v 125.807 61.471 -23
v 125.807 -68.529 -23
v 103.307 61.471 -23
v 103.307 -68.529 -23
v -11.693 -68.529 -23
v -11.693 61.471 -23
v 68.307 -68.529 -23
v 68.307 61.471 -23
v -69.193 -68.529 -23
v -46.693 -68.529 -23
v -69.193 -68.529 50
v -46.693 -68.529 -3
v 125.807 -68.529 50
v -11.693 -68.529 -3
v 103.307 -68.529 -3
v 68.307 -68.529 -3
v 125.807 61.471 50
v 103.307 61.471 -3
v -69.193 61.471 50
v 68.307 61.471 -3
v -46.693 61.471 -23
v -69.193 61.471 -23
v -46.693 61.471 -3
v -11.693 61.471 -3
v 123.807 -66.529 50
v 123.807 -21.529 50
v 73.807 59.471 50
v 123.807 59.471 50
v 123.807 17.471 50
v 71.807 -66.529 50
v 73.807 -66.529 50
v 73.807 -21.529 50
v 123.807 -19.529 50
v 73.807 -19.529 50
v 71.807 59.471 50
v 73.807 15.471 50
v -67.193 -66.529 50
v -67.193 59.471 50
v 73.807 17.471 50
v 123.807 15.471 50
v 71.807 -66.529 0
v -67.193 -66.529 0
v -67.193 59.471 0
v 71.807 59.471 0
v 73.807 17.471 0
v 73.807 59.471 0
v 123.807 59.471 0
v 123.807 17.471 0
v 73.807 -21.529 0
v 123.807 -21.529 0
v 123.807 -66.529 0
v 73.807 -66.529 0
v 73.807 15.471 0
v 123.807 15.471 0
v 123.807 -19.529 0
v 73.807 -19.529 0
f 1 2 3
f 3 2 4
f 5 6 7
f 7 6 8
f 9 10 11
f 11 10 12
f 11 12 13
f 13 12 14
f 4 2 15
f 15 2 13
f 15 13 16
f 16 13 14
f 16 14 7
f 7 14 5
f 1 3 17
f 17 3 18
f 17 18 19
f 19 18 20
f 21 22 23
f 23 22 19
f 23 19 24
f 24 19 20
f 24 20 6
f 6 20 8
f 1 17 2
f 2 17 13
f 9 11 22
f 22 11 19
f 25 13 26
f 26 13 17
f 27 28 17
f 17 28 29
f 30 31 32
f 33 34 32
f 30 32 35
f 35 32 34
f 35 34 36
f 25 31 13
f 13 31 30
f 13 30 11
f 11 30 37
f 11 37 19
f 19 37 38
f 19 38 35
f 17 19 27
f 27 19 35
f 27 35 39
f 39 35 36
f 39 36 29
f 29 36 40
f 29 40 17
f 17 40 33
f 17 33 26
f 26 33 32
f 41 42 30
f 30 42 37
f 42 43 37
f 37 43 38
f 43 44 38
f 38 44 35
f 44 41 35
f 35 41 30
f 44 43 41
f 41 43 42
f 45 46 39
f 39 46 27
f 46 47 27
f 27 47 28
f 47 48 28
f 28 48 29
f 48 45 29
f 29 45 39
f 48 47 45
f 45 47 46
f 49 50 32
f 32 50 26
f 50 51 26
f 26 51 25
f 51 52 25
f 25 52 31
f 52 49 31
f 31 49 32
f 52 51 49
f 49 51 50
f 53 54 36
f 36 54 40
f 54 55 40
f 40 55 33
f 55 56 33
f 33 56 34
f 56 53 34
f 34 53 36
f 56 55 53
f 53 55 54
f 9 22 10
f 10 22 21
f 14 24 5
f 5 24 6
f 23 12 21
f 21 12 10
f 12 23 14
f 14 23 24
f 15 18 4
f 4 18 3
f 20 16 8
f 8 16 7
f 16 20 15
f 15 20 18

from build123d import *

# Parameters (mm, degrees)
SKIZZE1_W                       = 195
SKIZZE1_H                       = 130
AUFSATZ_LINEAR_AUSTRAGEN1_DEPTH = 53
SKIZZE2_W                       = 139
SKIZZE2_H                       = 126
SCHNITT_LINEAR_AUSTRAGEN1_DEPTH = 50
SKIZZE3_W                       = 50
SKIZZE3_H                       = 42
SCHNITT_LINEAR_AUSTRAGEN2_DEPTH = 50
SKIZZE4_W                       = 50
SKIZZE4_H                       = 45
SCHNITT_LINEAR_AUSTRAGEN3_DEPTH = 50
SKIZZE5_W                       = 50
SKIZZE5_H                       = 35
SCHNITT_LINEAR_AUSTRAGEN4_DEPTH = 50
SKIZZE6_W                       = 195
SKIZZE6_H                       = 130
AUFSATZ_LINEAR_AUSTRAGEN2_DEPTH = 20
SKIZZE7_W                       = 35
SKIZZE7_H                       = 130
SCHNITT_LINEAR_AUSTRAGEN5_DEPTH = 20


with BuildPart() as part:
    # Skizze1 → Aufsatz-Linear austragen1 (new body)
    with BuildSketch(Plane(origin=(0, 0, -3), x_dir=(-1, 0, 0), z_dir=(0, 0, -1))):
        with Locations((-28.307004173, -3.528995936)):
            Rectangle(SKIZZE1_W, SKIZZE1_H)
    extrude(amount=-AUFSATZ_LINEAR_AUSTRAGEN1_DEPTH)

    # Skizze2 → Schnitt-Linear austragen1 (cut)
    with BuildSketch(Plane.XY.offset(50)):
        with Locations((2.307004173, -3.528995936)):
            Rectangle(SKIZZE2_W, SKIZZE2_H)
    extrude(amount=-SCHNITT_LINEAR_AUSTRAGEN1_DEPTH, mode=Mode.SUBTRACT)

    # Skizze3 → Schnitt-Linear austragen2 (cut)
    with BuildSketch(Plane.XY.offset(50)):
        with Locations((98.807004173, 38.471004064)):
            Rectangle(SKIZZE3_W, SKIZZE3_H)
    extrude(amount=-SCHNITT_LINEAR_AUSTRAGEN2_DEPTH, mode=Mode.SUBTRACT)

    # Skizze4 → Schnitt-Linear austragen3 (cut)
    with BuildSketch(Plane.XY.offset(50)):
        with Locations((98.807004173, -44.028995936)):
            Rectangle(SKIZZE4_W, SKIZZE4_H)
    extrude(amount=-SCHNITT_LINEAR_AUSTRAGEN3_DEPTH, mode=Mode.SUBTRACT)

    # Skizze5 → Schnitt-Linear austragen4 (cut)
    with BuildSketch(Plane.XY.offset(50)):
        with Locations((98.807004173, -2.028995936)):
            Rectangle(SKIZZE5_W, SKIZZE5_H)
    extrude(amount=-SCHNITT_LINEAR_AUSTRAGEN4_DEPTH, mode=Mode.SUBTRACT)

    # Skizze6 → Aufsatz-Linear austragen2 (add)
    with BuildSketch(Plane(origin=(0, 0, -3), x_dir=(-1, 0, 0), z_dir=(0, 0, -1))):
        with Locations((-28.307004173, -3.528995936)):
            Rectangle(SKIZZE6_W, SKIZZE6_H)
    extrude(amount=AUFSATZ_LINEAR_AUSTRAGEN2_DEPTH)

    # Skizze7 → Schnitt-Linear austragen5 (cut)
    with BuildSketch(Plane(origin=(0, 0, -23), x_dir=(-1, 0, 0), z_dir=(0, 0, -1))):
        with Locations((-85.807004173, -3.528995936)):
            Rectangle(SKIZZE7_W, SKIZZE7_H)
        with Locations((29.192995827, -3.528995936)):
            Rectangle(SKIZZE7_W, SKIZZE7_H)
    extrude(amount=-SCHNITT_LINEAR_AUSTRAGEN5_DEPTH, mode=Mode.SUBTRACT)


solid = part.part
